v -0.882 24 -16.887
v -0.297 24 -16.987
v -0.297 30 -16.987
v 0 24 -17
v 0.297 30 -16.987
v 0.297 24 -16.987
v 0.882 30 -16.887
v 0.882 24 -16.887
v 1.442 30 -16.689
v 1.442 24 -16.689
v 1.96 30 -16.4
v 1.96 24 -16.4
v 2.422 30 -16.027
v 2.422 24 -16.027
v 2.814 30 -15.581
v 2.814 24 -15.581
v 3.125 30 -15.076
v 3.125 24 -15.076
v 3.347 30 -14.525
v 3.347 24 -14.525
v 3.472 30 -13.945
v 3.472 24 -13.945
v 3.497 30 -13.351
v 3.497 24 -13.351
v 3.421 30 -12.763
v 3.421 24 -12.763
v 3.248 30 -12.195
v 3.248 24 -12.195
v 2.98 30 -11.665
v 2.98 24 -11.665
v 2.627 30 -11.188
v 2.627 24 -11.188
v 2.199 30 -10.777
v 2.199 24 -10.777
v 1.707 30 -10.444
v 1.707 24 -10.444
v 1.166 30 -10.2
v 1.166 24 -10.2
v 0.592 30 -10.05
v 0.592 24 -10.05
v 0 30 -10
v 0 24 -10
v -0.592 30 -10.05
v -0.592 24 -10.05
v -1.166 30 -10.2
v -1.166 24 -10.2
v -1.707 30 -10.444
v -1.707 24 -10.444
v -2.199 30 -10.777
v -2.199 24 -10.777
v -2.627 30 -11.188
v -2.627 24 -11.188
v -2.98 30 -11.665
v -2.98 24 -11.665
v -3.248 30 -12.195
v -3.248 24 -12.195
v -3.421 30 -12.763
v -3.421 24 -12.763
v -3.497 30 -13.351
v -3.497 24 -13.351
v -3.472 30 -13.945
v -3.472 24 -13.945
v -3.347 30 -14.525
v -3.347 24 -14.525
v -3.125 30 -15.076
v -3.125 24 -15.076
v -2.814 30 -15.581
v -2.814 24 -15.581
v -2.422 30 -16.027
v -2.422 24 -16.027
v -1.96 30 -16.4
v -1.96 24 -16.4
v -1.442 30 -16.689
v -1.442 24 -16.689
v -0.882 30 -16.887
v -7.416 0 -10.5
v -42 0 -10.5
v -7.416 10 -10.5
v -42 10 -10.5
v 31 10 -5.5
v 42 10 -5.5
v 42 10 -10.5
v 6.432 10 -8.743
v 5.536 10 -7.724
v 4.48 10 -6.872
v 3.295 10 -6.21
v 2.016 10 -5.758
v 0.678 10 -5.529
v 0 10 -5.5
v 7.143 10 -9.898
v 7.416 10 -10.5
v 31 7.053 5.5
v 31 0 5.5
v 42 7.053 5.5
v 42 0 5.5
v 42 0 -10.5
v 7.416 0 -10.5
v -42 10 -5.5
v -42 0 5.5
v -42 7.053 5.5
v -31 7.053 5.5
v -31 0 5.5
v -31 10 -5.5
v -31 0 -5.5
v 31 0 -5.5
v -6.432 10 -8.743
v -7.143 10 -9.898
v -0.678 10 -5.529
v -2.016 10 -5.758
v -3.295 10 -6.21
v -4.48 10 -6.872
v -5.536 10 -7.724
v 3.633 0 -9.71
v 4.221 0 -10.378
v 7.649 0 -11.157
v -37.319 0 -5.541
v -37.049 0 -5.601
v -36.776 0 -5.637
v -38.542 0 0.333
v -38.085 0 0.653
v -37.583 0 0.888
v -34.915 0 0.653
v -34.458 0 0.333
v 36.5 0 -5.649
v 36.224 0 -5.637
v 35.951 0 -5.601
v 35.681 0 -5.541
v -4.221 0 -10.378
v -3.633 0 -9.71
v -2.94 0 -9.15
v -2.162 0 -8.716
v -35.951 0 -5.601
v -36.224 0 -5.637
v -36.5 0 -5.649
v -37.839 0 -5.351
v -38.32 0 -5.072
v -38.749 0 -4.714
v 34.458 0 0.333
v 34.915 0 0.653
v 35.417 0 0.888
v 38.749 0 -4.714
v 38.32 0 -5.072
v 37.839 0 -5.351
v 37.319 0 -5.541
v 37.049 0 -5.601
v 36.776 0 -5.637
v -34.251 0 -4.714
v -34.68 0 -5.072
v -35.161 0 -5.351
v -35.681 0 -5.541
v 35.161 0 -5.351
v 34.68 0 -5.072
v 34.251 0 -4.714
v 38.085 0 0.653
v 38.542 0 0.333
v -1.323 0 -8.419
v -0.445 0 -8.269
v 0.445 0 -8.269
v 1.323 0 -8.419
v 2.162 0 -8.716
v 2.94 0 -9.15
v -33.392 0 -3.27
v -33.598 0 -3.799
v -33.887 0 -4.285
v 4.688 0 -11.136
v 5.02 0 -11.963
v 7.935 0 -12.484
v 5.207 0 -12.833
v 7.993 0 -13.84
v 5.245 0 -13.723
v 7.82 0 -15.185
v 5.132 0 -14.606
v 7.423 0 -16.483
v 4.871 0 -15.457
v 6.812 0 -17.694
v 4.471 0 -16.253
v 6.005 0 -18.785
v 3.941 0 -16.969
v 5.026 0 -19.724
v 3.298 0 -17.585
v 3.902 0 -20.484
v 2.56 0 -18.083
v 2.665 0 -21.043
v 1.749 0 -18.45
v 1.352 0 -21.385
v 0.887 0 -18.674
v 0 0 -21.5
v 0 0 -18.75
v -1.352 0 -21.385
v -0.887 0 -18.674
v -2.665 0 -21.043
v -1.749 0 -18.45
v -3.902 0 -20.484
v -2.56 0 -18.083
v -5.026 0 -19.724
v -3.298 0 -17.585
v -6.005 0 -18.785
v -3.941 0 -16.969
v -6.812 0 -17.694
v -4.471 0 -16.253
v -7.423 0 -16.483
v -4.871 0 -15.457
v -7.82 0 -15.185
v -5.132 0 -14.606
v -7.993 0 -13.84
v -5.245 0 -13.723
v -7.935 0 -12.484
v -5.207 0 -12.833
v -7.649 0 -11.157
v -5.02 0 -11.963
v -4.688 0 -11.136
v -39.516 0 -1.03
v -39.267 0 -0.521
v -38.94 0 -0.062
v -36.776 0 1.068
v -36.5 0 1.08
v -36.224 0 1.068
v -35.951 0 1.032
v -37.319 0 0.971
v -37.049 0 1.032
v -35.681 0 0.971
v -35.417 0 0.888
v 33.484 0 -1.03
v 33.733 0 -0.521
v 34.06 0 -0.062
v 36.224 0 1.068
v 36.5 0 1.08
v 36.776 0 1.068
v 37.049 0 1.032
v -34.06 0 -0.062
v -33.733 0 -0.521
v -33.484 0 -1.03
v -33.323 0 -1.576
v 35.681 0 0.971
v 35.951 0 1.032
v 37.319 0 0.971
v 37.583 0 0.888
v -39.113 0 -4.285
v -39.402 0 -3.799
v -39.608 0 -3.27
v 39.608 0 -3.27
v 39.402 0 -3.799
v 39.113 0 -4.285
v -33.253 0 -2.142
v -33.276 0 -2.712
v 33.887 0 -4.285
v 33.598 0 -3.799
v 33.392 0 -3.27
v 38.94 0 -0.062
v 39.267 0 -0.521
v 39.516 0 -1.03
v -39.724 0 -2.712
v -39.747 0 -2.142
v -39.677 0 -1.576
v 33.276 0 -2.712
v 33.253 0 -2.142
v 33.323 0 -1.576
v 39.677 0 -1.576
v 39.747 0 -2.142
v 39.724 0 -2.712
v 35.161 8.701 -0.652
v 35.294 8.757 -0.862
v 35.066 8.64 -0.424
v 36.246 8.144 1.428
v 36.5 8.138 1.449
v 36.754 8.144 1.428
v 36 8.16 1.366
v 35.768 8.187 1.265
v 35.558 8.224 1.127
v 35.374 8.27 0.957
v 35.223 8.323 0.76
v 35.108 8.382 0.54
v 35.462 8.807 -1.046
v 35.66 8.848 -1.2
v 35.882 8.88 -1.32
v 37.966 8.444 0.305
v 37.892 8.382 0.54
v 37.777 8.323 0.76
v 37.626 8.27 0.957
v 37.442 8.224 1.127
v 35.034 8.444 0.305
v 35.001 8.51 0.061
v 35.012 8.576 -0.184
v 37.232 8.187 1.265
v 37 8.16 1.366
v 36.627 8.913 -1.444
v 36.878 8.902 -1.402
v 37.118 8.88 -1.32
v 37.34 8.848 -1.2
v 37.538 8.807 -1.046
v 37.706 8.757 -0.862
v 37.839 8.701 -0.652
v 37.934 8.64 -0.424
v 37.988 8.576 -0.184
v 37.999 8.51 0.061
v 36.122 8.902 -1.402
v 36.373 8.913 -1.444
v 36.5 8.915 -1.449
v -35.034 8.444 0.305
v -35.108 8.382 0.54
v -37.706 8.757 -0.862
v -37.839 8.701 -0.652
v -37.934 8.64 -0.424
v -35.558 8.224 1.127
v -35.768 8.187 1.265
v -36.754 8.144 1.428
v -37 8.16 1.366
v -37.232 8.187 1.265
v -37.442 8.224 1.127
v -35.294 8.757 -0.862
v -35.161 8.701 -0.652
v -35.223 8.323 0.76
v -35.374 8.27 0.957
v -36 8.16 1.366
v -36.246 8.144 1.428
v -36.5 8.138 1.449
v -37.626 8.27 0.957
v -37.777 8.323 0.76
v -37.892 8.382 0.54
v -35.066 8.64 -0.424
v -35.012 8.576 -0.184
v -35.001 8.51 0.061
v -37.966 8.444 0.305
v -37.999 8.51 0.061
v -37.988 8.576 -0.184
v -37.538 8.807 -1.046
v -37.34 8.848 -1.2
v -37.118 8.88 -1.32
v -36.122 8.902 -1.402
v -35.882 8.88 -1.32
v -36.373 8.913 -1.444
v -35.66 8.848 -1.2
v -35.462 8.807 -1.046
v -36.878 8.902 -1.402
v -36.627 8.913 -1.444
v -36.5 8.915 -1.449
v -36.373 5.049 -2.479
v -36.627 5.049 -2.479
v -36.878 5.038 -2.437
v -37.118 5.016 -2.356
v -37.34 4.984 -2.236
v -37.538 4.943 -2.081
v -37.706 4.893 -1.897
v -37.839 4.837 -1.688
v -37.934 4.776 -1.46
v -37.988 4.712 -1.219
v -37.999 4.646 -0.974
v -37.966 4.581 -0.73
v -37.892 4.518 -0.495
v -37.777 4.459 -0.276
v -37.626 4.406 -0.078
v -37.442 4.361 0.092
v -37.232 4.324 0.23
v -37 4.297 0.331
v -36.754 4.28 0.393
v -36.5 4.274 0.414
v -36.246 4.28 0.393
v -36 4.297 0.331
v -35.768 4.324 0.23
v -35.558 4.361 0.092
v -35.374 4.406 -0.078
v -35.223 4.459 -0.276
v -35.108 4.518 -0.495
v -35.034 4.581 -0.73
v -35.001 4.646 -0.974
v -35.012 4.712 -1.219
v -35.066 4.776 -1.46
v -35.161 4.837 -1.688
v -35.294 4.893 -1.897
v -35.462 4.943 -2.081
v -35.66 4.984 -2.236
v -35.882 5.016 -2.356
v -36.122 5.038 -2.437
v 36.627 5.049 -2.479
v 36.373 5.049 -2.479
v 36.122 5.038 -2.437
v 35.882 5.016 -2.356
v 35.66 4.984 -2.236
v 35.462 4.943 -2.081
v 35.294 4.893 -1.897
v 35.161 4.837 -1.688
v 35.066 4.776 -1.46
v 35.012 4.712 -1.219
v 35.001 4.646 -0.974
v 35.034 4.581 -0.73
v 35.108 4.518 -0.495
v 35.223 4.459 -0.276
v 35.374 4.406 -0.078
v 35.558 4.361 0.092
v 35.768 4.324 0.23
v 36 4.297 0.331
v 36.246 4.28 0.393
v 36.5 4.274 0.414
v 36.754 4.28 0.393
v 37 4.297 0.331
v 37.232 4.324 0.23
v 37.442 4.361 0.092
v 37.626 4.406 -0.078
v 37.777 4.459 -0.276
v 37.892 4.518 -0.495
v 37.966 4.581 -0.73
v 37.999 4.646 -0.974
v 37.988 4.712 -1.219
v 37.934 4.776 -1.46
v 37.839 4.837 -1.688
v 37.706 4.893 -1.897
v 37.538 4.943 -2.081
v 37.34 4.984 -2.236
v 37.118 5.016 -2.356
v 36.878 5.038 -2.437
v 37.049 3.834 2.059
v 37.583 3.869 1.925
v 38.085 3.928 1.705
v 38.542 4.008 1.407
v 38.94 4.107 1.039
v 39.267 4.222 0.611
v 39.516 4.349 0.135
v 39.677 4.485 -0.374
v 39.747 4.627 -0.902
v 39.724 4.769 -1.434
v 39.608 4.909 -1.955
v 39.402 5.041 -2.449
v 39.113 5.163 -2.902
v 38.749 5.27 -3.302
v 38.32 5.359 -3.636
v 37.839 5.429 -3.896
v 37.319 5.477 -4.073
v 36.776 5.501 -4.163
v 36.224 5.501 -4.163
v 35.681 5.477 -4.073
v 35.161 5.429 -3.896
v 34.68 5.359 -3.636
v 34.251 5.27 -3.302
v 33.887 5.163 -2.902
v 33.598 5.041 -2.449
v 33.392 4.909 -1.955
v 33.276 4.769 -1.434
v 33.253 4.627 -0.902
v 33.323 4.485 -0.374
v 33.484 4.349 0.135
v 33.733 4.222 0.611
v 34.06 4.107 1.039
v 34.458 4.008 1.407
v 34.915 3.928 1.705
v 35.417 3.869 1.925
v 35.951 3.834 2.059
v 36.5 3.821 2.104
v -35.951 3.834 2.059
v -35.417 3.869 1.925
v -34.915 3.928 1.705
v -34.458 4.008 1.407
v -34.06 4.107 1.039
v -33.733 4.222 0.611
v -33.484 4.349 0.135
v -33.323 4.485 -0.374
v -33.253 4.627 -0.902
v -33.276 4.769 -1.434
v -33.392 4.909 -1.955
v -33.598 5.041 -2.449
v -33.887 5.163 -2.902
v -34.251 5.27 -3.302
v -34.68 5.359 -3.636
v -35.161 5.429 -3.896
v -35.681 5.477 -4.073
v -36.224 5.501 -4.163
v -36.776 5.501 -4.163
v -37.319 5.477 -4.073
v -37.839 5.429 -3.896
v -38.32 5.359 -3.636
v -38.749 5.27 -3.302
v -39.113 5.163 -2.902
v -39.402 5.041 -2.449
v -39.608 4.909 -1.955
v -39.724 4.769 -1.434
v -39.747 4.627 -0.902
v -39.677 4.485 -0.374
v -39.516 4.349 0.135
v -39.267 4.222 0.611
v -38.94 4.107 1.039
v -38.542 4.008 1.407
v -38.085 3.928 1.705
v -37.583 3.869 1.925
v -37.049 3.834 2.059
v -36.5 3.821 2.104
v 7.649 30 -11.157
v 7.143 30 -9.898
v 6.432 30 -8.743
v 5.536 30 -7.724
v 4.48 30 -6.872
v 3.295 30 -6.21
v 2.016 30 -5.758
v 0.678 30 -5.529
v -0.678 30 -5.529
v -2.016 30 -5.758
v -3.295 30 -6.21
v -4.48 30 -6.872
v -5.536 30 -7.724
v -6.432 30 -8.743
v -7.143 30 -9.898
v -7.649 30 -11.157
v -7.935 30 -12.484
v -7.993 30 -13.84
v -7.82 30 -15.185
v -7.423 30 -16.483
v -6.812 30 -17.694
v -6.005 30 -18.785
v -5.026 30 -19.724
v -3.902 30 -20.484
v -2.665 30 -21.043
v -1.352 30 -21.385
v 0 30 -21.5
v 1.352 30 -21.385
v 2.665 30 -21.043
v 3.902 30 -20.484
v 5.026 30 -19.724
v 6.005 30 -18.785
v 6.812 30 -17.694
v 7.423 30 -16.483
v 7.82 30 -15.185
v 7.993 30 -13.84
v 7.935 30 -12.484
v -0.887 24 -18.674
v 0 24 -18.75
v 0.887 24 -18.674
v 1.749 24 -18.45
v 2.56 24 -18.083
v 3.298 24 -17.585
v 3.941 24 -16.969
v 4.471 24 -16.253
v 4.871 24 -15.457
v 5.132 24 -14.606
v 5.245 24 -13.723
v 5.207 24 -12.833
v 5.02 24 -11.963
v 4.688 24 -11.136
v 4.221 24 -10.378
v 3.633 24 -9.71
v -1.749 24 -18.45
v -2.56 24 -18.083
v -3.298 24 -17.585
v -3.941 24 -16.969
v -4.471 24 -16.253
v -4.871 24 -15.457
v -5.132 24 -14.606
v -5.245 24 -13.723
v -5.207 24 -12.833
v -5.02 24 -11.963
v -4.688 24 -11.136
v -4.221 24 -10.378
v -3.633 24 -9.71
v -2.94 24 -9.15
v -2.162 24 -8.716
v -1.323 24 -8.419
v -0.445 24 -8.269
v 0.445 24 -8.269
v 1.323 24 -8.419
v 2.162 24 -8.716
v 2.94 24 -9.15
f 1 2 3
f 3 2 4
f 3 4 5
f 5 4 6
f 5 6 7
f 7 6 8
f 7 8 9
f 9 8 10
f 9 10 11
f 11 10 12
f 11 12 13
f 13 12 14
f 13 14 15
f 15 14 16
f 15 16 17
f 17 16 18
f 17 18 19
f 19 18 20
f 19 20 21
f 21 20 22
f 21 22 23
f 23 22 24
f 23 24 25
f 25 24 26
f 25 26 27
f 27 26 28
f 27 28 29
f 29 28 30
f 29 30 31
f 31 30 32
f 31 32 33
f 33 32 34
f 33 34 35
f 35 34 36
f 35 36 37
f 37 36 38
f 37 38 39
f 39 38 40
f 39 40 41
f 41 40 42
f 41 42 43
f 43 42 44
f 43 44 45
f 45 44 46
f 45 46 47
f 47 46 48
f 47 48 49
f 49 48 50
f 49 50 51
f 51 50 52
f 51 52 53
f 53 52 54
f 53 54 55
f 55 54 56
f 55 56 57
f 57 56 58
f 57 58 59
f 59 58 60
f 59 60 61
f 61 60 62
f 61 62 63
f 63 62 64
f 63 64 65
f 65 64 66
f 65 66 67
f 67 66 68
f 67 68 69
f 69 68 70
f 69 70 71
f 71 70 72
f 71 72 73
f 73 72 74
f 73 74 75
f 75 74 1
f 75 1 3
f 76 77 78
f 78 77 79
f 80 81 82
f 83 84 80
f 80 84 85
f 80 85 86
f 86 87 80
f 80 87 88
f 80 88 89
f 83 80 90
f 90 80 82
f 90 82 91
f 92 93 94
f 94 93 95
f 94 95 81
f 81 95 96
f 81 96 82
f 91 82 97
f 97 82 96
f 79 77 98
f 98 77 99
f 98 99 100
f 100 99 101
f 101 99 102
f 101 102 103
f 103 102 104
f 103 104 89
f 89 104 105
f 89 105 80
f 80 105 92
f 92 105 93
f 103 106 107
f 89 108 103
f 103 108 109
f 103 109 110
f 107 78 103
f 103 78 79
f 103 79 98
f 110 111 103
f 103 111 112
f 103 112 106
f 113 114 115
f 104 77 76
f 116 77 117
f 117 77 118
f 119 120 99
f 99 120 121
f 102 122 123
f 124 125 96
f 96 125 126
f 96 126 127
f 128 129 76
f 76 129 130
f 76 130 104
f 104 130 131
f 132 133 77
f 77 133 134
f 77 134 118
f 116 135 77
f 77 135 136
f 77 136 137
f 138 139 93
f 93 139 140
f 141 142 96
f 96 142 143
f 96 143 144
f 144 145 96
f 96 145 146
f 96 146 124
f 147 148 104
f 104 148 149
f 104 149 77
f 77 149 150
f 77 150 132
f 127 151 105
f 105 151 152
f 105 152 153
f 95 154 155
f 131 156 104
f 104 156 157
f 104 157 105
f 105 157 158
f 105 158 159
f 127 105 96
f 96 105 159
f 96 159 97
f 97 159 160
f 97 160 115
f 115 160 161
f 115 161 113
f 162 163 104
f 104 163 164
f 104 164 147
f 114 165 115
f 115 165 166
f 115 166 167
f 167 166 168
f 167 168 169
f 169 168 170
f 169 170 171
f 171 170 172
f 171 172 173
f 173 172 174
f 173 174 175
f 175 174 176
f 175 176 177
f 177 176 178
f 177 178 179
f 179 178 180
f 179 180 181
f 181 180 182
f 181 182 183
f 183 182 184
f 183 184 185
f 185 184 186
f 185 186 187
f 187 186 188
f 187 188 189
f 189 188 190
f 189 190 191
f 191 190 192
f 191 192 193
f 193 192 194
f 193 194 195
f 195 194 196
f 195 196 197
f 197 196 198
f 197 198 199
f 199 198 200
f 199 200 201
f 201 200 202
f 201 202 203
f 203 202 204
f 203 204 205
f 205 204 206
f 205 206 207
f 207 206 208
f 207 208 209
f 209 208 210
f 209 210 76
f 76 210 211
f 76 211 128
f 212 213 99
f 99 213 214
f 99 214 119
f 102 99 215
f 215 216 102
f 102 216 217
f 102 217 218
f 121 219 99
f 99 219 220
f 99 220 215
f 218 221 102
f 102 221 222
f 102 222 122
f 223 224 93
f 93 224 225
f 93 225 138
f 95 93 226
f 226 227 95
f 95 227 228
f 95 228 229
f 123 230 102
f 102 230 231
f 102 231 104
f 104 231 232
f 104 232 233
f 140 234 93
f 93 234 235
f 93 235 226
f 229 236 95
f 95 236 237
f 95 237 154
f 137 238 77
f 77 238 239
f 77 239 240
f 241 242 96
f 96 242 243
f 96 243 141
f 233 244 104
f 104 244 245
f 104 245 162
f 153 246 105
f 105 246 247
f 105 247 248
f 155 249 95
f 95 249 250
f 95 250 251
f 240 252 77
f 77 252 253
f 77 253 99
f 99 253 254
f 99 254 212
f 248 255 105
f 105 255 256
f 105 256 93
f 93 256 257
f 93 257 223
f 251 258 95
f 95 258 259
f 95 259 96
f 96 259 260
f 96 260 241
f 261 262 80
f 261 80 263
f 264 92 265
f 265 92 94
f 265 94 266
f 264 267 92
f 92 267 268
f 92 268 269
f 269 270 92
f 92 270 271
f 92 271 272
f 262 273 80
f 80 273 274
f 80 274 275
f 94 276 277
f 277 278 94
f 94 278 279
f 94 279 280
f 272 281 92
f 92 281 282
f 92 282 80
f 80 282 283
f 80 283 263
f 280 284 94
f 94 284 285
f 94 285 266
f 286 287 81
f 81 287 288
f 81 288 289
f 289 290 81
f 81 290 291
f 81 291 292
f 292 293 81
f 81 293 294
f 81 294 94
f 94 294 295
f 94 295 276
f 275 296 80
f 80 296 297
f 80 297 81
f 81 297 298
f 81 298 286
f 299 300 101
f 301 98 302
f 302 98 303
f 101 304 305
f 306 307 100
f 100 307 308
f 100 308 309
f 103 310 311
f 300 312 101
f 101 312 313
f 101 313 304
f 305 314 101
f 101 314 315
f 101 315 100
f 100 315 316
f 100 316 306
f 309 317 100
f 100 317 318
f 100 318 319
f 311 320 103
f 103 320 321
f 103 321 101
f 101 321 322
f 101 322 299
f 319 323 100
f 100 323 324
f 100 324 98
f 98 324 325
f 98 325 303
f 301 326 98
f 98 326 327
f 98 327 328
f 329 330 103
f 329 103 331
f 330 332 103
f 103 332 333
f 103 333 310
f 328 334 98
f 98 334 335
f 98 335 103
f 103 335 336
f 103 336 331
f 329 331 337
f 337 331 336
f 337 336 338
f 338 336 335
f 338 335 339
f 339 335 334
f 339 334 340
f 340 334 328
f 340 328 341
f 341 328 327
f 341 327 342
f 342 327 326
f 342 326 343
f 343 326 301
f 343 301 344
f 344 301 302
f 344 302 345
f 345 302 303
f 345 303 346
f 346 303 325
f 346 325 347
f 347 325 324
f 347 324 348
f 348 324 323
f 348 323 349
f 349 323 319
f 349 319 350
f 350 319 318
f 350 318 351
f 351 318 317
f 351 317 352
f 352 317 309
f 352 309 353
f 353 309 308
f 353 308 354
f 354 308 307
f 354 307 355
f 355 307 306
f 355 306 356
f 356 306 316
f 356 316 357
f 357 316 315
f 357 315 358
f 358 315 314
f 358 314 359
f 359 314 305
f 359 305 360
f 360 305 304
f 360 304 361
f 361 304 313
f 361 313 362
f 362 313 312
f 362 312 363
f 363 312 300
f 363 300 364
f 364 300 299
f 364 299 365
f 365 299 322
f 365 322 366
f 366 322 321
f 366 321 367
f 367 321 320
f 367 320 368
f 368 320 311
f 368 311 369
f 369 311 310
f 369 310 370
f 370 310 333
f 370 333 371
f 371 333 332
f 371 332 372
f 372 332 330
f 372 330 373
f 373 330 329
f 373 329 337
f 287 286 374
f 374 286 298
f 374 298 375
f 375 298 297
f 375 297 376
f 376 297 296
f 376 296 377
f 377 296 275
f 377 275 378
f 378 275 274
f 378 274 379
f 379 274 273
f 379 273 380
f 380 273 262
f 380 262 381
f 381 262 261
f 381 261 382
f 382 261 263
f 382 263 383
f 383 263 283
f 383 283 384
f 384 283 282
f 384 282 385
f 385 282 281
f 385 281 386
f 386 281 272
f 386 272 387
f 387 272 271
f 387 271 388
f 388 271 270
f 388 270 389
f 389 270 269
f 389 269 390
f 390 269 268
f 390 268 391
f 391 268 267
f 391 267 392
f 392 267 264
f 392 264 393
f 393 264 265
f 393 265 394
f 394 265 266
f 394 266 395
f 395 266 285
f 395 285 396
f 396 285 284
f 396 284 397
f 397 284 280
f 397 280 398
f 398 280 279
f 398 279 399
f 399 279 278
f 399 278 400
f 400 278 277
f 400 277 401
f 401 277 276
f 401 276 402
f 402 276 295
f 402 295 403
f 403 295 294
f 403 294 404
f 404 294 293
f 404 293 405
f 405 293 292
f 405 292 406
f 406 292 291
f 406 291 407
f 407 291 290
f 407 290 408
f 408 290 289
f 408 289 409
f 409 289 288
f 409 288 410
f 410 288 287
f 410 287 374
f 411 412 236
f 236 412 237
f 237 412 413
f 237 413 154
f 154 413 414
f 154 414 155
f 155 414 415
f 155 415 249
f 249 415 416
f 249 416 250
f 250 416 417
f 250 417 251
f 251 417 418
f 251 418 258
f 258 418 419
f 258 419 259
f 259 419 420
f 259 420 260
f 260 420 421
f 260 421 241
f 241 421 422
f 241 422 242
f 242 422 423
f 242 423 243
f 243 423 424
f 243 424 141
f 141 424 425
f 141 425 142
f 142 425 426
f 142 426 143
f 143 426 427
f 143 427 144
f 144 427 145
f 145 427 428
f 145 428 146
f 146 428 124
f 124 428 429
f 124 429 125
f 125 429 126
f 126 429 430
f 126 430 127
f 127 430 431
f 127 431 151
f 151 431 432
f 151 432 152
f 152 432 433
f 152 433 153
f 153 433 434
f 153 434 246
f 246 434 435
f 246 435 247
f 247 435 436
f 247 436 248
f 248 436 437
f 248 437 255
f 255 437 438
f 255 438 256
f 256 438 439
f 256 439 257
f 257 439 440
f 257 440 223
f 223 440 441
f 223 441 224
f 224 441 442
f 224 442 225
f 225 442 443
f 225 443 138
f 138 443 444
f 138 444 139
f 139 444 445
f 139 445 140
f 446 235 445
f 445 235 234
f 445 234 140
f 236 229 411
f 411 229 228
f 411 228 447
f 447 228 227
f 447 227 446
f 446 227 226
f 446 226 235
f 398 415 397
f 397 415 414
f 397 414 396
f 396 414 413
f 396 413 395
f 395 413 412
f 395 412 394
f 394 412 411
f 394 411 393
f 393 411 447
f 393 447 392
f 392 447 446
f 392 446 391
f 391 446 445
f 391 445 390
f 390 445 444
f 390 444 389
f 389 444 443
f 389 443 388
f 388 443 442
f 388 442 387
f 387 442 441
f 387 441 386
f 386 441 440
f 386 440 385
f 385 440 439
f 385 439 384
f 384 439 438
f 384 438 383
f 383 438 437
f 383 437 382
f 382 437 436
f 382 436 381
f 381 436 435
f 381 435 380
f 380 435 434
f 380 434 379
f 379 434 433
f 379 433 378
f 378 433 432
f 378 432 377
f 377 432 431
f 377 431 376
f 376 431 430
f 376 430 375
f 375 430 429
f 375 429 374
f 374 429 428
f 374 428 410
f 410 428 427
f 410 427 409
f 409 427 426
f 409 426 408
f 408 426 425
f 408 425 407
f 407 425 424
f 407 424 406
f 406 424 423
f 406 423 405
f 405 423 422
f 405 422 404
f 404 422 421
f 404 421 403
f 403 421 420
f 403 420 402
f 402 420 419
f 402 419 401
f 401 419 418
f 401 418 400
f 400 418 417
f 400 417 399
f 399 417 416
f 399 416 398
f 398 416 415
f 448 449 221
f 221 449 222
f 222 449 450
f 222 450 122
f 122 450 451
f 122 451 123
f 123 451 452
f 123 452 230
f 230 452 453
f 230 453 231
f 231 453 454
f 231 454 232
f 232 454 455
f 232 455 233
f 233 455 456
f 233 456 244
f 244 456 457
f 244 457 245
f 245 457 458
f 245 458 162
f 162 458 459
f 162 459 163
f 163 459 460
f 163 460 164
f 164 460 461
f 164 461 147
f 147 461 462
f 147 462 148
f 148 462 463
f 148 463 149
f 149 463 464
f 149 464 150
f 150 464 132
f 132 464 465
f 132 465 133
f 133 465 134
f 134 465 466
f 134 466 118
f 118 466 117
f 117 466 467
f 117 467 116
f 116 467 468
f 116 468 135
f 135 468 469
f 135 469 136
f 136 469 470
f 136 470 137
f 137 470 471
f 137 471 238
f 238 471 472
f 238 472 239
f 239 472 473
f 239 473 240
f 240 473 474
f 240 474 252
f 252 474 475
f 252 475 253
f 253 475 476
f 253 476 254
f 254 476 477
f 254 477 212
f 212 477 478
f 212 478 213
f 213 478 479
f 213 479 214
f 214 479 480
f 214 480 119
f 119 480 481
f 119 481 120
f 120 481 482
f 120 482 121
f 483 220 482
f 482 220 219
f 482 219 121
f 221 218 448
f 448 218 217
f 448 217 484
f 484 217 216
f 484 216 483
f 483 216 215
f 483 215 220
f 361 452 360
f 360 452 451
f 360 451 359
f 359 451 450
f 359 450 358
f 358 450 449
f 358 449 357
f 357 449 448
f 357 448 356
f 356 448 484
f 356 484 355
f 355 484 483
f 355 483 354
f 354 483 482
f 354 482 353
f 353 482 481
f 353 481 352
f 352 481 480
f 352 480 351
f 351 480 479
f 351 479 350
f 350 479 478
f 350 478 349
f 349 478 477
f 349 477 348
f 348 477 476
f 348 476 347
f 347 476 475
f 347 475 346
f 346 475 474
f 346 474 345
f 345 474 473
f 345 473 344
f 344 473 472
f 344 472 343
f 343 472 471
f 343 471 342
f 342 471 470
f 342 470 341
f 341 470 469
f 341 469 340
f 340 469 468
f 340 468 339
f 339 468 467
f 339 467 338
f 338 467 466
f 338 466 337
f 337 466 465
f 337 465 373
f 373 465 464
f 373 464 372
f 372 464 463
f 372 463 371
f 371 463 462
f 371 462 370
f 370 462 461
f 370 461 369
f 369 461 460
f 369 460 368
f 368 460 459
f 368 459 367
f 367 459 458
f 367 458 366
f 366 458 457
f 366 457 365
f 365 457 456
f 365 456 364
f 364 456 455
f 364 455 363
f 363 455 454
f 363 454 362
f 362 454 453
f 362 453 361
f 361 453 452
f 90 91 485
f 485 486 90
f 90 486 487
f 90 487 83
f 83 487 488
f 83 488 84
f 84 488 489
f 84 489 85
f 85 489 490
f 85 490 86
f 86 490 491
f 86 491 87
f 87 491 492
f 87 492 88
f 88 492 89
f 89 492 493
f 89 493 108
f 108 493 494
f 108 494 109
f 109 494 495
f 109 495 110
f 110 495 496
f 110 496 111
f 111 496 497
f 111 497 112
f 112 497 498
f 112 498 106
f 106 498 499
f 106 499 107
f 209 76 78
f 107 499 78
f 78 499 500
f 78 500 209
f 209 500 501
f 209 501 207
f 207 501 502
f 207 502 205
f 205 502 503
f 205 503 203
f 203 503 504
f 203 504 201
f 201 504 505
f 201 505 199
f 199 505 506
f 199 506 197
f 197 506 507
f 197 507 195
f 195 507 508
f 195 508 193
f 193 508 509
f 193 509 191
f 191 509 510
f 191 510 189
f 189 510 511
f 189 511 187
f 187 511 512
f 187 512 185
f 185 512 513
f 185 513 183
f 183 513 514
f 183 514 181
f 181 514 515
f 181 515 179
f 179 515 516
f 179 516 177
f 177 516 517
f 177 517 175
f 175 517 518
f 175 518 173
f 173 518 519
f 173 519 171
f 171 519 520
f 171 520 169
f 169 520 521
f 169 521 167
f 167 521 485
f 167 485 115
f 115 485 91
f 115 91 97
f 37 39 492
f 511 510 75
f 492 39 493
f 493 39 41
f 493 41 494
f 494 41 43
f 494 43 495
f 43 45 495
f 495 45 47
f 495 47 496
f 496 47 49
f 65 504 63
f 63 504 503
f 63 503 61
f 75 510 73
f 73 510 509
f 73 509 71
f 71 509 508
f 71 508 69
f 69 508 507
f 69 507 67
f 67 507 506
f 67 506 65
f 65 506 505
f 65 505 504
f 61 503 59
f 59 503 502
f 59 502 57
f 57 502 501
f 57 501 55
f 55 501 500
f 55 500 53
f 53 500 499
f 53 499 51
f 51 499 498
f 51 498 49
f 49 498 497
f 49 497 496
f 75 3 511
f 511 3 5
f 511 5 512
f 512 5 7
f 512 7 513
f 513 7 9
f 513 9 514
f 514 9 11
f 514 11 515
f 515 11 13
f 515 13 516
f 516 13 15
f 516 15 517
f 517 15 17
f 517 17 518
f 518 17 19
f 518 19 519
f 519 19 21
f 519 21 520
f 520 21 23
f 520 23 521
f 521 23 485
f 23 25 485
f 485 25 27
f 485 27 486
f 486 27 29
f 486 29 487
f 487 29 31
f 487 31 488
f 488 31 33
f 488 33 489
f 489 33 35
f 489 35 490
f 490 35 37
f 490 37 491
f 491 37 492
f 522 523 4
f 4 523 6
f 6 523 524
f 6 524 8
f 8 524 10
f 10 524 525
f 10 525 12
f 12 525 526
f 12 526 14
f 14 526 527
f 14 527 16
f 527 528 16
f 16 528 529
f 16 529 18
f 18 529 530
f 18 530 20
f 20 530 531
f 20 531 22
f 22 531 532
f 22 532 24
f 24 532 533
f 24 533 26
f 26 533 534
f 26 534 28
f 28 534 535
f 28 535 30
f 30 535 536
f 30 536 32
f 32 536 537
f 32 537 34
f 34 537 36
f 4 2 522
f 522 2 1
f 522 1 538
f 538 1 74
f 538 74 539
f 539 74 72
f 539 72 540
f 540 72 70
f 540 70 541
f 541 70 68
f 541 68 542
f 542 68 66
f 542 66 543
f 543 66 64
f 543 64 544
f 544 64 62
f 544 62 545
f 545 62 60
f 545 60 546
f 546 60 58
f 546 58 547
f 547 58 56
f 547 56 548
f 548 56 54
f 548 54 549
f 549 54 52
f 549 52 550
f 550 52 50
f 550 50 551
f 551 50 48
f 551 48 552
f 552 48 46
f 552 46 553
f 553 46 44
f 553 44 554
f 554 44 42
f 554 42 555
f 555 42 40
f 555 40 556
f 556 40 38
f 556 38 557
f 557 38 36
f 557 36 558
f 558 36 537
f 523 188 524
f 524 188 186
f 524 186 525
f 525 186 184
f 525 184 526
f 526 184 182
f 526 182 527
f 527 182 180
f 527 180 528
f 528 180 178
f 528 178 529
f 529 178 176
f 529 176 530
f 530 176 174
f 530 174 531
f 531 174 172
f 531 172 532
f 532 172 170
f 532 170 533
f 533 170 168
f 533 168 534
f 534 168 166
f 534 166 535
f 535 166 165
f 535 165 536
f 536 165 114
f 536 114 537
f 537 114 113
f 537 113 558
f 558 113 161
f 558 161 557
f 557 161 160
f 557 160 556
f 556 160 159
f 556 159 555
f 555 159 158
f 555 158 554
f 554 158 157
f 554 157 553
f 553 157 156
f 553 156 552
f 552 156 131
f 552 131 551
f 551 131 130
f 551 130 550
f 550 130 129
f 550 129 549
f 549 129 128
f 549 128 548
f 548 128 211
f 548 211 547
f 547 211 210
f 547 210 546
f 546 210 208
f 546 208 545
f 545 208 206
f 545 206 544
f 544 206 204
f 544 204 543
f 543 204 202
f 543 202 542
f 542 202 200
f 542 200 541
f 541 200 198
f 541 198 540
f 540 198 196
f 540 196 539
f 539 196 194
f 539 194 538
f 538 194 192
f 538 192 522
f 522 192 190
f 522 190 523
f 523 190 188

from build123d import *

# Parameters (mm, degrees)
EXTRUDE_1_DEPTH     = 10
CUT_EXTRUDE_4_DEPTH = 85
SKETCH_6_R          = 1.5
CUT_EXTRUDE_5_DEPTH = 11.953353488
SKETCH_7_R          = 3.25
CUT_EXTRUDE_6_DEPTH = 7.953353488
SKETCH_8_R          = 8
EXTRUDE_2_DEPTH     = 30
SKETCH_9_R          = 3.5
CUT_EXTRUDE_7_DEPTH = 30
SKETCH_10_R         = 5.25
CUT_EXTRUDE_8_DEPTH = 24


with BuildPart() as part:
    # 草图1 → 凸台-拉伸1 (new body)
    with BuildSketch(Plane(origin=(0, 0, 0), x_dir=(1, 0, 0), z_dir=(0, 1, 0))):
        Polygon((-42, 5.5), (-42, 10.5), (42, 10.5), (42, 5.5), (42, -5.5), (31, -5.5), (31, 5.5), (-31, 5.5), (-31, -5.5), (-42, -5.5), align=None)
    extrude(amount=EXTRUDE_1_DEPTH)

    # 草图5 → 切除-拉伸4 (cut, through all)
    with BuildSketch(Plane.ZY.offset(42)):
        Polygon((-5.5, 10), (5.5, 7.052558883), (5.5, 10), align=None)
    extrude(amount=-CUT_EXTRUDE_4_DEPTH, mode=Mode.SUBTRACT)

    # 草图6 → 切除-拉伸5 (cut, through all)
    with BuildSketch(Plane(origin=(0, 12.383949988, -14.397022476), x_dir=(1, 0, 0), z_dir=(0, -0.965925826, -0.258819045))):
        with Locations((-36.5, 14.904894438)):
            Circle(SKETCH_6_R)
        with Locations((36.5, 14.904894438)):
            Circle(SKETCH_6_R)
    extrude(amount=CUT_EXTRUDE_5_DEPTH, mode=Mode.SUBTRACT)

    # 草图7 → 切除-拉伸6 (cut, through all)
    with BuildSketch(Plane(origin=(0, 4.091423714, 1.09629368), x_dir=(1, 0, 0), z_dir=(0, 0.965925826, 0.258819045))):
        with Locations((-36.5, 2.206763503)):
            Circle(SKETCH_7_R)
        with Locations((36.5, 2.206763503)):
            Circle(SKETCH_7_R)
    extrude(amount=-CUT_EXTRUDE_6_DEPTH, mode=Mode.SUBTRACT)

    # 草图8 → 凸台-拉伸2 (add)
    with BuildSketch(Plane.XZ):
        with Locations((0, -13.5)):
            Circle(SKETCH_8_R)
    extrude(amount=-EXTRUDE_2_DEPTH)

    # 草图9 → 切除-拉伸7 (cut)
    with BuildSketch(Plane(origin=(0, 30, 0), x_dir=(1, 0, 0), z_dir=(0, 1, 0))):
        with Locations((0, 13.5)):
            Circle(SKETCH_9_R)
    extrude(amount=-CUT_EXTRUDE_7_DEPTH, mode=Mode.SUBTRACT)

    # 草图10 → 切除-拉伸8 (cut)
    with BuildSketch(Plane.XZ):
        with Locations((0, -13.5)):
            Circle(SKETCH_10_R)
    extrude(amount=-CUT_EXTRUDE_8_DEPTH, mode=Mode.SUBTRACT)


solid = part.part
